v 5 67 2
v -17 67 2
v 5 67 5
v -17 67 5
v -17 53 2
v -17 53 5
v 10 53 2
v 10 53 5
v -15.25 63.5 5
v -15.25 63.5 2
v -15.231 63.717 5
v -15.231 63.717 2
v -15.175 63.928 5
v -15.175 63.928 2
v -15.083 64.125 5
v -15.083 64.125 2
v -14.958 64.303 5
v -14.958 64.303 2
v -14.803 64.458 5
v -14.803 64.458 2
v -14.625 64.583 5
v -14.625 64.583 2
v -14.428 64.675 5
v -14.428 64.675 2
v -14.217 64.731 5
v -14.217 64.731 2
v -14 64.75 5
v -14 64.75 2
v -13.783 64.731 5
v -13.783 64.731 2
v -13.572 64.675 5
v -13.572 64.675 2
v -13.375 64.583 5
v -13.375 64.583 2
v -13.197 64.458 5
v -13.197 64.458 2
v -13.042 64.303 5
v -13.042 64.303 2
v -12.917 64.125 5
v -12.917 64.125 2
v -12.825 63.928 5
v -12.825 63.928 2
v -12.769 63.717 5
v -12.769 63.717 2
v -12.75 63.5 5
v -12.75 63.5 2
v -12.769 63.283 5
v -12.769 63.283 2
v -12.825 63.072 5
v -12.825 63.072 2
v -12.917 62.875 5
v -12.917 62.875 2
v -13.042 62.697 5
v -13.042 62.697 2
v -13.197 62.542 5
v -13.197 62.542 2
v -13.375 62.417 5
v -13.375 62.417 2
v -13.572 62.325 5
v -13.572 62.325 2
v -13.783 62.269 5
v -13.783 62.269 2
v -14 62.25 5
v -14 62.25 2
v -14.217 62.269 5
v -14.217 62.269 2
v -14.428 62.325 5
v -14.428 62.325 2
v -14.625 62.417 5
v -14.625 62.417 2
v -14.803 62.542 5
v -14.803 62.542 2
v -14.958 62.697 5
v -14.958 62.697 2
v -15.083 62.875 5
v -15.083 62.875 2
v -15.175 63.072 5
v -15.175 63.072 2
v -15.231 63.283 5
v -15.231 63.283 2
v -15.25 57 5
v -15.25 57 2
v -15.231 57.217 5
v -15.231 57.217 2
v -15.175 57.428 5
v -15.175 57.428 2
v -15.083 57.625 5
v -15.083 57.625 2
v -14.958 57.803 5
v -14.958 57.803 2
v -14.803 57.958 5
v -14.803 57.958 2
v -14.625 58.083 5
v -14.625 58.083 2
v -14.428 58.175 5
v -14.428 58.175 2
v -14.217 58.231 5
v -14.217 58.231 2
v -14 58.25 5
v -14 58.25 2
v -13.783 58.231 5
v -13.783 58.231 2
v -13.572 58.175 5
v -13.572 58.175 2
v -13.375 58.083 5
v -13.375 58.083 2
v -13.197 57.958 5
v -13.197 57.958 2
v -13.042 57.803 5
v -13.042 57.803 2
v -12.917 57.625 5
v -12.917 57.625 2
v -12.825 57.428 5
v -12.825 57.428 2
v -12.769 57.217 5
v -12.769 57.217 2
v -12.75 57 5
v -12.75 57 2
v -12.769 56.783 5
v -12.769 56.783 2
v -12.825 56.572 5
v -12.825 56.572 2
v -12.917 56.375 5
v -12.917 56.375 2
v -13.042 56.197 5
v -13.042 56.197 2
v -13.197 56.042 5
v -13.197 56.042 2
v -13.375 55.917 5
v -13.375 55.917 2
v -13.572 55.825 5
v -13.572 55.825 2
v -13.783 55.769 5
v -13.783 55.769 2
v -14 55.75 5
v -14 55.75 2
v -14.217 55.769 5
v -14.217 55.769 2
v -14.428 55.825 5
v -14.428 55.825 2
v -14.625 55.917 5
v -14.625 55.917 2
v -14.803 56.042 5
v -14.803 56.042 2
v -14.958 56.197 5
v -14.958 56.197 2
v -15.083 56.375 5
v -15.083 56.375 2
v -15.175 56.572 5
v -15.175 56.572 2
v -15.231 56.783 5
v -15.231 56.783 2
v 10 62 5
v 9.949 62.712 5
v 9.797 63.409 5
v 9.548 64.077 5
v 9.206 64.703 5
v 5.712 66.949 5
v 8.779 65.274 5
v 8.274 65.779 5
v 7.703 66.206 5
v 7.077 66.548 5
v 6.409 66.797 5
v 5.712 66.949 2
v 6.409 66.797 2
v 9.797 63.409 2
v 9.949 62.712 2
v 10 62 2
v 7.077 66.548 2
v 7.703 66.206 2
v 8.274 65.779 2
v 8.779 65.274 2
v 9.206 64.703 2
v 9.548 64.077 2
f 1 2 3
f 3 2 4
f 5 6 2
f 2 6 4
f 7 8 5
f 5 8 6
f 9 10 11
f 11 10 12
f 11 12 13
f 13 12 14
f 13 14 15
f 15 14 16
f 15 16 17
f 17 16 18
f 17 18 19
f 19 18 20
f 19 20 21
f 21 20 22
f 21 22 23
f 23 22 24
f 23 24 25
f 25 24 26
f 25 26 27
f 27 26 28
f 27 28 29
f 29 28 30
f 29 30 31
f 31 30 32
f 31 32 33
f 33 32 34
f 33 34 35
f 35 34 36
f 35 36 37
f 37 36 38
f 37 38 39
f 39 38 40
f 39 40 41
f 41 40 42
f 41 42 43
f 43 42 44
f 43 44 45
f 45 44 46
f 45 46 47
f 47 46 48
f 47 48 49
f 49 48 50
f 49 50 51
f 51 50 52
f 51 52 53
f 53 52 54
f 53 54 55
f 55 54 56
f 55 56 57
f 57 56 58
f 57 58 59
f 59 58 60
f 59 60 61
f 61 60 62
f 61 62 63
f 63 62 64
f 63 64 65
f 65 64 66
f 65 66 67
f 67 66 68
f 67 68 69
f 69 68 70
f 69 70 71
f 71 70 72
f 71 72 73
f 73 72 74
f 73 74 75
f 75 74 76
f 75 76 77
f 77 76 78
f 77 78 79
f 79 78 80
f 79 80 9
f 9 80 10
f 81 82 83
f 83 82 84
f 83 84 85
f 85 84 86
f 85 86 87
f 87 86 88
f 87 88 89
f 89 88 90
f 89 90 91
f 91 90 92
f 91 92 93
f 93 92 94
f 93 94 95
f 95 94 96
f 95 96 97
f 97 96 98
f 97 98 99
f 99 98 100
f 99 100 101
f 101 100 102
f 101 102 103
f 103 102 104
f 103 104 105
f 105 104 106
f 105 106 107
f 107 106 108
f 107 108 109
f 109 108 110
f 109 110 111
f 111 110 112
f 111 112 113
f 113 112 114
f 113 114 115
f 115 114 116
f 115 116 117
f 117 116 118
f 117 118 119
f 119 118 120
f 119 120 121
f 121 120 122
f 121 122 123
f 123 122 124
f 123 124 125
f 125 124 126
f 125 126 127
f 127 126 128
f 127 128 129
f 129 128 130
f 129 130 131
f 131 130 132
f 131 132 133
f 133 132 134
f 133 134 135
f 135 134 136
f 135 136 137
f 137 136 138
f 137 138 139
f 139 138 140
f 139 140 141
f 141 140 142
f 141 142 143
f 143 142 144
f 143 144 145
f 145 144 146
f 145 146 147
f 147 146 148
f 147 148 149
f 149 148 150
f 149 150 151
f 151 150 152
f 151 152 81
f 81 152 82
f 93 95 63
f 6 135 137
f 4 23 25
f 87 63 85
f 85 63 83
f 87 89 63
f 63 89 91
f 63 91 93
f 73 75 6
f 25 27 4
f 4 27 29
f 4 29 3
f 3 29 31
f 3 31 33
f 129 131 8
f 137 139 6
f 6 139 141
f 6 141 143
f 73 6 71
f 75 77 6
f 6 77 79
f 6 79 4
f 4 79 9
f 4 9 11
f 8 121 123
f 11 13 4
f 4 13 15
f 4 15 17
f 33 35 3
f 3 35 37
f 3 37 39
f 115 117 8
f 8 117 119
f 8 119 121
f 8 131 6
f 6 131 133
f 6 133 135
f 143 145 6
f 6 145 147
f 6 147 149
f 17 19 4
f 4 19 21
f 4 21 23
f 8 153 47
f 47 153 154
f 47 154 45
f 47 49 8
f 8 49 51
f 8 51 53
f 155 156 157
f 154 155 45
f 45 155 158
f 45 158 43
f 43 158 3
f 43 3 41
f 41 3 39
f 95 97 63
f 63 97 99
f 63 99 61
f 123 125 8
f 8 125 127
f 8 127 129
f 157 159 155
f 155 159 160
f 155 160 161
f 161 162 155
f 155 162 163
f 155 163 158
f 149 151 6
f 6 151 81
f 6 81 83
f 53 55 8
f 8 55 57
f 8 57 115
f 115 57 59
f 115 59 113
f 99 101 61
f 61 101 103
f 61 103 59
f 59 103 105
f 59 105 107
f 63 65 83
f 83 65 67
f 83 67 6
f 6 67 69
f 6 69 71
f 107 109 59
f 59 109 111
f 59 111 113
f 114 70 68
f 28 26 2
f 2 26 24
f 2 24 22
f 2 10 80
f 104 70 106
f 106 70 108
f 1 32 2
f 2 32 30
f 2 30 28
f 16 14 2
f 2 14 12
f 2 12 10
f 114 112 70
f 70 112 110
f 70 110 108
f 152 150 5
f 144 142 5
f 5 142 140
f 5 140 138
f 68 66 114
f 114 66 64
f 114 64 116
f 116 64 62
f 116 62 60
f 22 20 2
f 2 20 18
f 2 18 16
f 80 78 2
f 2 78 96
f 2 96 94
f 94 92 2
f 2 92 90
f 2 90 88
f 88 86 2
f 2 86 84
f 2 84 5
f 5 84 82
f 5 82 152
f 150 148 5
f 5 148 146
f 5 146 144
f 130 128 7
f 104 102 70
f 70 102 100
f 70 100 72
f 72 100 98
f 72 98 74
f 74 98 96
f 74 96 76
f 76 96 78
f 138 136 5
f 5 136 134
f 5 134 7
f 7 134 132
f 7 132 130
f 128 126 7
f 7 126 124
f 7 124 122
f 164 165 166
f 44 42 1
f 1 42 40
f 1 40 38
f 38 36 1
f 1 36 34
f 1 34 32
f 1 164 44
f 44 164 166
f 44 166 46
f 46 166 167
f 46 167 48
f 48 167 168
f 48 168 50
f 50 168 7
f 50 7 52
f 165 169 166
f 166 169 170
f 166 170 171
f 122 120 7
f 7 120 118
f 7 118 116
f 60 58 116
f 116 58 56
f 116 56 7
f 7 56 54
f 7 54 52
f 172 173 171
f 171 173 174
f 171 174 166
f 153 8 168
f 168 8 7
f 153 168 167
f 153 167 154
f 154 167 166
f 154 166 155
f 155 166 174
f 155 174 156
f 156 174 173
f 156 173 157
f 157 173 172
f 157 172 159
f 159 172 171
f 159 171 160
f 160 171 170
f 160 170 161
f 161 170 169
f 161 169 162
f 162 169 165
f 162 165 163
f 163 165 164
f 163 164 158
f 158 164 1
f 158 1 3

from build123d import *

# Parameters (mm, degrees)
SKETCH1_W           = 19
SKETCH1_H           = 58
BOSS_EXTRUDE1_DEPTH = 54
SKETCH2_3_R         = 20
SKETCH2_3_R_2       = 15.5
BOSS_EXTRUDE2_DEPTH = 50
SKETCH2_R           = 1.9
CUT_EXTRUDE1_DEPTH  = 10
FILLET1_R           = 10
BOSS_EXTRUDE3_DEPTH = 50
SKETCH4_R           = 1.25
CUT_EXTRUDE2_DEPTH  = 100.523866484
SKETCH5_W           = 17
SKETCH5_H           = 14
CUT_EXTRUDE3_DEPTH  = 2
SKETCH7_W           = 50
SKETCH7_H           = 57
CUT_EXTRUDE4_DEPTH  = 94.701654201
SKETCH8_W           = 3
SKETCH8_H           = 14
BOSS_EXTRUDE4_DEPTH = 10
FILLET2_R           = 5


with BuildPart() as part:
    # Sketch1 → Boss-Extrude1 (new body)
    with BuildSketch(Plane.XY):
        with Locations((9.5, 29)):
            Rectangle(SKETCH1_W, SKETCH1_H)
    extrude(amount=BOSS_EXTRUDE1_DEPTH)

    # Sketch2<3> → Boss-Extrude2 (add)
    with BuildSketch(Plane.ZY):
        with Locations((27.5, 29)):
            Circle(SKETCH2_3_R)
        with Locations((27.5, 29)):
            Circle(SKETCH2_3_R_2, mode=Mode.SUBTRACT)
    extrude(amount=-BOSS_EXTRUDE2_DEPTH)

    # Sketch2 → Cut-Extrude1 (cut)
    with BuildSketch(Plane.ZY):
        with Locations((9.25, 29)):
            Circle(SKETCH2_R)
        with Locations((45.75, 29)):
            Circle(SKETCH2_R)
    extrude(amount=-CUT_EXTRUDE1_DEPTH, mode=Mode.SUBTRACT)

    # Fillet1
    fillet1_edges = [part.edges().sort_by_distance(p)[0] for p in [
        (9.5, 0, 0),
    ]]
    fillet(fillet1_edges, radius=FILLET1_R)

    # Sketch3 → Boss-Extrude3 (add)
    with BuildSketch(Plane(origin=(0, 0, 0), x_dir=(0, 0, -1), z_dir=(1, 0, 0))):
        Polygon((0, 0), (0, 57), (0, 67), (-5, 67), (-5, 0), align=None)
    extrude(amount=-BOSS_EXTRUDE3_DEPTH)

    # Sketch4 → Cut-Extrude2 (cut, through all)
    with BuildSketch(Plane(origin=(0, 0, 0), x_dir=(-1, 0, 0), z_dir=(0, 0, -1))):
        with Locations((14, 57)):
            Circle(SKETCH4_R)
        Polygon((0, 0), (50, 0), (50, 67), (17, 67), (17, 53), (0, 53), align=None)
        with Locations((14, 63.5)):
            Circle(SKETCH4_R)
    extrude(amount=-CUT_EXTRUDE2_DEPTH, mode=Mode.SUBTRACT)

    # Sketch5 → Cut-Extrude3 (cut)
    with BuildSketch(Plane(origin=(0, 0, 0), x_dir=(-1, 0, 0), z_dir=(0, 0, -1))):
        with Locations((8.5, 60)):
            Rectangle(SKETCH5_W, SKETCH5_H)
    extrude(amount=-CUT_EXTRUDE3_DEPTH, mode=Mode.SUBTRACT)

    # Sketch7 → Cut-Extrude4 (cut, through all)
    with BuildSketch(Plane(origin=(0, 58, 0), x_dir=(1, 0, 0), z_dir=(0, 1, 0))):
        with Locations((25, -28.5)):
            Rectangle(SKETCH7_W, SKETCH7_H)
    extrude(amount=-CUT_EXTRUDE4_DEPTH, mode=Mode.SUBTRACT)

    # Sketch8 → Boss-Extrude4 (add)
    with BuildSketch(Plane(origin=(0, 0, 0), x_dir=(0, 0, -1), z_dir=(1, 0, 0))):
        with Locations((-3.5, 60)):
            Rectangle(SKETCH8_W, SKETCH8_H)
    extrude(amount=BOSS_EXTRUDE4_DEPTH)

    # Fillet2
    fillet2_edges = [part.edges().sort_by_distance(p)[0] for p in [
        (10, 67, 3.5),
    ]]
    fillet(fillet2_edges, radius=FILLET2_R)


solid = part.part
